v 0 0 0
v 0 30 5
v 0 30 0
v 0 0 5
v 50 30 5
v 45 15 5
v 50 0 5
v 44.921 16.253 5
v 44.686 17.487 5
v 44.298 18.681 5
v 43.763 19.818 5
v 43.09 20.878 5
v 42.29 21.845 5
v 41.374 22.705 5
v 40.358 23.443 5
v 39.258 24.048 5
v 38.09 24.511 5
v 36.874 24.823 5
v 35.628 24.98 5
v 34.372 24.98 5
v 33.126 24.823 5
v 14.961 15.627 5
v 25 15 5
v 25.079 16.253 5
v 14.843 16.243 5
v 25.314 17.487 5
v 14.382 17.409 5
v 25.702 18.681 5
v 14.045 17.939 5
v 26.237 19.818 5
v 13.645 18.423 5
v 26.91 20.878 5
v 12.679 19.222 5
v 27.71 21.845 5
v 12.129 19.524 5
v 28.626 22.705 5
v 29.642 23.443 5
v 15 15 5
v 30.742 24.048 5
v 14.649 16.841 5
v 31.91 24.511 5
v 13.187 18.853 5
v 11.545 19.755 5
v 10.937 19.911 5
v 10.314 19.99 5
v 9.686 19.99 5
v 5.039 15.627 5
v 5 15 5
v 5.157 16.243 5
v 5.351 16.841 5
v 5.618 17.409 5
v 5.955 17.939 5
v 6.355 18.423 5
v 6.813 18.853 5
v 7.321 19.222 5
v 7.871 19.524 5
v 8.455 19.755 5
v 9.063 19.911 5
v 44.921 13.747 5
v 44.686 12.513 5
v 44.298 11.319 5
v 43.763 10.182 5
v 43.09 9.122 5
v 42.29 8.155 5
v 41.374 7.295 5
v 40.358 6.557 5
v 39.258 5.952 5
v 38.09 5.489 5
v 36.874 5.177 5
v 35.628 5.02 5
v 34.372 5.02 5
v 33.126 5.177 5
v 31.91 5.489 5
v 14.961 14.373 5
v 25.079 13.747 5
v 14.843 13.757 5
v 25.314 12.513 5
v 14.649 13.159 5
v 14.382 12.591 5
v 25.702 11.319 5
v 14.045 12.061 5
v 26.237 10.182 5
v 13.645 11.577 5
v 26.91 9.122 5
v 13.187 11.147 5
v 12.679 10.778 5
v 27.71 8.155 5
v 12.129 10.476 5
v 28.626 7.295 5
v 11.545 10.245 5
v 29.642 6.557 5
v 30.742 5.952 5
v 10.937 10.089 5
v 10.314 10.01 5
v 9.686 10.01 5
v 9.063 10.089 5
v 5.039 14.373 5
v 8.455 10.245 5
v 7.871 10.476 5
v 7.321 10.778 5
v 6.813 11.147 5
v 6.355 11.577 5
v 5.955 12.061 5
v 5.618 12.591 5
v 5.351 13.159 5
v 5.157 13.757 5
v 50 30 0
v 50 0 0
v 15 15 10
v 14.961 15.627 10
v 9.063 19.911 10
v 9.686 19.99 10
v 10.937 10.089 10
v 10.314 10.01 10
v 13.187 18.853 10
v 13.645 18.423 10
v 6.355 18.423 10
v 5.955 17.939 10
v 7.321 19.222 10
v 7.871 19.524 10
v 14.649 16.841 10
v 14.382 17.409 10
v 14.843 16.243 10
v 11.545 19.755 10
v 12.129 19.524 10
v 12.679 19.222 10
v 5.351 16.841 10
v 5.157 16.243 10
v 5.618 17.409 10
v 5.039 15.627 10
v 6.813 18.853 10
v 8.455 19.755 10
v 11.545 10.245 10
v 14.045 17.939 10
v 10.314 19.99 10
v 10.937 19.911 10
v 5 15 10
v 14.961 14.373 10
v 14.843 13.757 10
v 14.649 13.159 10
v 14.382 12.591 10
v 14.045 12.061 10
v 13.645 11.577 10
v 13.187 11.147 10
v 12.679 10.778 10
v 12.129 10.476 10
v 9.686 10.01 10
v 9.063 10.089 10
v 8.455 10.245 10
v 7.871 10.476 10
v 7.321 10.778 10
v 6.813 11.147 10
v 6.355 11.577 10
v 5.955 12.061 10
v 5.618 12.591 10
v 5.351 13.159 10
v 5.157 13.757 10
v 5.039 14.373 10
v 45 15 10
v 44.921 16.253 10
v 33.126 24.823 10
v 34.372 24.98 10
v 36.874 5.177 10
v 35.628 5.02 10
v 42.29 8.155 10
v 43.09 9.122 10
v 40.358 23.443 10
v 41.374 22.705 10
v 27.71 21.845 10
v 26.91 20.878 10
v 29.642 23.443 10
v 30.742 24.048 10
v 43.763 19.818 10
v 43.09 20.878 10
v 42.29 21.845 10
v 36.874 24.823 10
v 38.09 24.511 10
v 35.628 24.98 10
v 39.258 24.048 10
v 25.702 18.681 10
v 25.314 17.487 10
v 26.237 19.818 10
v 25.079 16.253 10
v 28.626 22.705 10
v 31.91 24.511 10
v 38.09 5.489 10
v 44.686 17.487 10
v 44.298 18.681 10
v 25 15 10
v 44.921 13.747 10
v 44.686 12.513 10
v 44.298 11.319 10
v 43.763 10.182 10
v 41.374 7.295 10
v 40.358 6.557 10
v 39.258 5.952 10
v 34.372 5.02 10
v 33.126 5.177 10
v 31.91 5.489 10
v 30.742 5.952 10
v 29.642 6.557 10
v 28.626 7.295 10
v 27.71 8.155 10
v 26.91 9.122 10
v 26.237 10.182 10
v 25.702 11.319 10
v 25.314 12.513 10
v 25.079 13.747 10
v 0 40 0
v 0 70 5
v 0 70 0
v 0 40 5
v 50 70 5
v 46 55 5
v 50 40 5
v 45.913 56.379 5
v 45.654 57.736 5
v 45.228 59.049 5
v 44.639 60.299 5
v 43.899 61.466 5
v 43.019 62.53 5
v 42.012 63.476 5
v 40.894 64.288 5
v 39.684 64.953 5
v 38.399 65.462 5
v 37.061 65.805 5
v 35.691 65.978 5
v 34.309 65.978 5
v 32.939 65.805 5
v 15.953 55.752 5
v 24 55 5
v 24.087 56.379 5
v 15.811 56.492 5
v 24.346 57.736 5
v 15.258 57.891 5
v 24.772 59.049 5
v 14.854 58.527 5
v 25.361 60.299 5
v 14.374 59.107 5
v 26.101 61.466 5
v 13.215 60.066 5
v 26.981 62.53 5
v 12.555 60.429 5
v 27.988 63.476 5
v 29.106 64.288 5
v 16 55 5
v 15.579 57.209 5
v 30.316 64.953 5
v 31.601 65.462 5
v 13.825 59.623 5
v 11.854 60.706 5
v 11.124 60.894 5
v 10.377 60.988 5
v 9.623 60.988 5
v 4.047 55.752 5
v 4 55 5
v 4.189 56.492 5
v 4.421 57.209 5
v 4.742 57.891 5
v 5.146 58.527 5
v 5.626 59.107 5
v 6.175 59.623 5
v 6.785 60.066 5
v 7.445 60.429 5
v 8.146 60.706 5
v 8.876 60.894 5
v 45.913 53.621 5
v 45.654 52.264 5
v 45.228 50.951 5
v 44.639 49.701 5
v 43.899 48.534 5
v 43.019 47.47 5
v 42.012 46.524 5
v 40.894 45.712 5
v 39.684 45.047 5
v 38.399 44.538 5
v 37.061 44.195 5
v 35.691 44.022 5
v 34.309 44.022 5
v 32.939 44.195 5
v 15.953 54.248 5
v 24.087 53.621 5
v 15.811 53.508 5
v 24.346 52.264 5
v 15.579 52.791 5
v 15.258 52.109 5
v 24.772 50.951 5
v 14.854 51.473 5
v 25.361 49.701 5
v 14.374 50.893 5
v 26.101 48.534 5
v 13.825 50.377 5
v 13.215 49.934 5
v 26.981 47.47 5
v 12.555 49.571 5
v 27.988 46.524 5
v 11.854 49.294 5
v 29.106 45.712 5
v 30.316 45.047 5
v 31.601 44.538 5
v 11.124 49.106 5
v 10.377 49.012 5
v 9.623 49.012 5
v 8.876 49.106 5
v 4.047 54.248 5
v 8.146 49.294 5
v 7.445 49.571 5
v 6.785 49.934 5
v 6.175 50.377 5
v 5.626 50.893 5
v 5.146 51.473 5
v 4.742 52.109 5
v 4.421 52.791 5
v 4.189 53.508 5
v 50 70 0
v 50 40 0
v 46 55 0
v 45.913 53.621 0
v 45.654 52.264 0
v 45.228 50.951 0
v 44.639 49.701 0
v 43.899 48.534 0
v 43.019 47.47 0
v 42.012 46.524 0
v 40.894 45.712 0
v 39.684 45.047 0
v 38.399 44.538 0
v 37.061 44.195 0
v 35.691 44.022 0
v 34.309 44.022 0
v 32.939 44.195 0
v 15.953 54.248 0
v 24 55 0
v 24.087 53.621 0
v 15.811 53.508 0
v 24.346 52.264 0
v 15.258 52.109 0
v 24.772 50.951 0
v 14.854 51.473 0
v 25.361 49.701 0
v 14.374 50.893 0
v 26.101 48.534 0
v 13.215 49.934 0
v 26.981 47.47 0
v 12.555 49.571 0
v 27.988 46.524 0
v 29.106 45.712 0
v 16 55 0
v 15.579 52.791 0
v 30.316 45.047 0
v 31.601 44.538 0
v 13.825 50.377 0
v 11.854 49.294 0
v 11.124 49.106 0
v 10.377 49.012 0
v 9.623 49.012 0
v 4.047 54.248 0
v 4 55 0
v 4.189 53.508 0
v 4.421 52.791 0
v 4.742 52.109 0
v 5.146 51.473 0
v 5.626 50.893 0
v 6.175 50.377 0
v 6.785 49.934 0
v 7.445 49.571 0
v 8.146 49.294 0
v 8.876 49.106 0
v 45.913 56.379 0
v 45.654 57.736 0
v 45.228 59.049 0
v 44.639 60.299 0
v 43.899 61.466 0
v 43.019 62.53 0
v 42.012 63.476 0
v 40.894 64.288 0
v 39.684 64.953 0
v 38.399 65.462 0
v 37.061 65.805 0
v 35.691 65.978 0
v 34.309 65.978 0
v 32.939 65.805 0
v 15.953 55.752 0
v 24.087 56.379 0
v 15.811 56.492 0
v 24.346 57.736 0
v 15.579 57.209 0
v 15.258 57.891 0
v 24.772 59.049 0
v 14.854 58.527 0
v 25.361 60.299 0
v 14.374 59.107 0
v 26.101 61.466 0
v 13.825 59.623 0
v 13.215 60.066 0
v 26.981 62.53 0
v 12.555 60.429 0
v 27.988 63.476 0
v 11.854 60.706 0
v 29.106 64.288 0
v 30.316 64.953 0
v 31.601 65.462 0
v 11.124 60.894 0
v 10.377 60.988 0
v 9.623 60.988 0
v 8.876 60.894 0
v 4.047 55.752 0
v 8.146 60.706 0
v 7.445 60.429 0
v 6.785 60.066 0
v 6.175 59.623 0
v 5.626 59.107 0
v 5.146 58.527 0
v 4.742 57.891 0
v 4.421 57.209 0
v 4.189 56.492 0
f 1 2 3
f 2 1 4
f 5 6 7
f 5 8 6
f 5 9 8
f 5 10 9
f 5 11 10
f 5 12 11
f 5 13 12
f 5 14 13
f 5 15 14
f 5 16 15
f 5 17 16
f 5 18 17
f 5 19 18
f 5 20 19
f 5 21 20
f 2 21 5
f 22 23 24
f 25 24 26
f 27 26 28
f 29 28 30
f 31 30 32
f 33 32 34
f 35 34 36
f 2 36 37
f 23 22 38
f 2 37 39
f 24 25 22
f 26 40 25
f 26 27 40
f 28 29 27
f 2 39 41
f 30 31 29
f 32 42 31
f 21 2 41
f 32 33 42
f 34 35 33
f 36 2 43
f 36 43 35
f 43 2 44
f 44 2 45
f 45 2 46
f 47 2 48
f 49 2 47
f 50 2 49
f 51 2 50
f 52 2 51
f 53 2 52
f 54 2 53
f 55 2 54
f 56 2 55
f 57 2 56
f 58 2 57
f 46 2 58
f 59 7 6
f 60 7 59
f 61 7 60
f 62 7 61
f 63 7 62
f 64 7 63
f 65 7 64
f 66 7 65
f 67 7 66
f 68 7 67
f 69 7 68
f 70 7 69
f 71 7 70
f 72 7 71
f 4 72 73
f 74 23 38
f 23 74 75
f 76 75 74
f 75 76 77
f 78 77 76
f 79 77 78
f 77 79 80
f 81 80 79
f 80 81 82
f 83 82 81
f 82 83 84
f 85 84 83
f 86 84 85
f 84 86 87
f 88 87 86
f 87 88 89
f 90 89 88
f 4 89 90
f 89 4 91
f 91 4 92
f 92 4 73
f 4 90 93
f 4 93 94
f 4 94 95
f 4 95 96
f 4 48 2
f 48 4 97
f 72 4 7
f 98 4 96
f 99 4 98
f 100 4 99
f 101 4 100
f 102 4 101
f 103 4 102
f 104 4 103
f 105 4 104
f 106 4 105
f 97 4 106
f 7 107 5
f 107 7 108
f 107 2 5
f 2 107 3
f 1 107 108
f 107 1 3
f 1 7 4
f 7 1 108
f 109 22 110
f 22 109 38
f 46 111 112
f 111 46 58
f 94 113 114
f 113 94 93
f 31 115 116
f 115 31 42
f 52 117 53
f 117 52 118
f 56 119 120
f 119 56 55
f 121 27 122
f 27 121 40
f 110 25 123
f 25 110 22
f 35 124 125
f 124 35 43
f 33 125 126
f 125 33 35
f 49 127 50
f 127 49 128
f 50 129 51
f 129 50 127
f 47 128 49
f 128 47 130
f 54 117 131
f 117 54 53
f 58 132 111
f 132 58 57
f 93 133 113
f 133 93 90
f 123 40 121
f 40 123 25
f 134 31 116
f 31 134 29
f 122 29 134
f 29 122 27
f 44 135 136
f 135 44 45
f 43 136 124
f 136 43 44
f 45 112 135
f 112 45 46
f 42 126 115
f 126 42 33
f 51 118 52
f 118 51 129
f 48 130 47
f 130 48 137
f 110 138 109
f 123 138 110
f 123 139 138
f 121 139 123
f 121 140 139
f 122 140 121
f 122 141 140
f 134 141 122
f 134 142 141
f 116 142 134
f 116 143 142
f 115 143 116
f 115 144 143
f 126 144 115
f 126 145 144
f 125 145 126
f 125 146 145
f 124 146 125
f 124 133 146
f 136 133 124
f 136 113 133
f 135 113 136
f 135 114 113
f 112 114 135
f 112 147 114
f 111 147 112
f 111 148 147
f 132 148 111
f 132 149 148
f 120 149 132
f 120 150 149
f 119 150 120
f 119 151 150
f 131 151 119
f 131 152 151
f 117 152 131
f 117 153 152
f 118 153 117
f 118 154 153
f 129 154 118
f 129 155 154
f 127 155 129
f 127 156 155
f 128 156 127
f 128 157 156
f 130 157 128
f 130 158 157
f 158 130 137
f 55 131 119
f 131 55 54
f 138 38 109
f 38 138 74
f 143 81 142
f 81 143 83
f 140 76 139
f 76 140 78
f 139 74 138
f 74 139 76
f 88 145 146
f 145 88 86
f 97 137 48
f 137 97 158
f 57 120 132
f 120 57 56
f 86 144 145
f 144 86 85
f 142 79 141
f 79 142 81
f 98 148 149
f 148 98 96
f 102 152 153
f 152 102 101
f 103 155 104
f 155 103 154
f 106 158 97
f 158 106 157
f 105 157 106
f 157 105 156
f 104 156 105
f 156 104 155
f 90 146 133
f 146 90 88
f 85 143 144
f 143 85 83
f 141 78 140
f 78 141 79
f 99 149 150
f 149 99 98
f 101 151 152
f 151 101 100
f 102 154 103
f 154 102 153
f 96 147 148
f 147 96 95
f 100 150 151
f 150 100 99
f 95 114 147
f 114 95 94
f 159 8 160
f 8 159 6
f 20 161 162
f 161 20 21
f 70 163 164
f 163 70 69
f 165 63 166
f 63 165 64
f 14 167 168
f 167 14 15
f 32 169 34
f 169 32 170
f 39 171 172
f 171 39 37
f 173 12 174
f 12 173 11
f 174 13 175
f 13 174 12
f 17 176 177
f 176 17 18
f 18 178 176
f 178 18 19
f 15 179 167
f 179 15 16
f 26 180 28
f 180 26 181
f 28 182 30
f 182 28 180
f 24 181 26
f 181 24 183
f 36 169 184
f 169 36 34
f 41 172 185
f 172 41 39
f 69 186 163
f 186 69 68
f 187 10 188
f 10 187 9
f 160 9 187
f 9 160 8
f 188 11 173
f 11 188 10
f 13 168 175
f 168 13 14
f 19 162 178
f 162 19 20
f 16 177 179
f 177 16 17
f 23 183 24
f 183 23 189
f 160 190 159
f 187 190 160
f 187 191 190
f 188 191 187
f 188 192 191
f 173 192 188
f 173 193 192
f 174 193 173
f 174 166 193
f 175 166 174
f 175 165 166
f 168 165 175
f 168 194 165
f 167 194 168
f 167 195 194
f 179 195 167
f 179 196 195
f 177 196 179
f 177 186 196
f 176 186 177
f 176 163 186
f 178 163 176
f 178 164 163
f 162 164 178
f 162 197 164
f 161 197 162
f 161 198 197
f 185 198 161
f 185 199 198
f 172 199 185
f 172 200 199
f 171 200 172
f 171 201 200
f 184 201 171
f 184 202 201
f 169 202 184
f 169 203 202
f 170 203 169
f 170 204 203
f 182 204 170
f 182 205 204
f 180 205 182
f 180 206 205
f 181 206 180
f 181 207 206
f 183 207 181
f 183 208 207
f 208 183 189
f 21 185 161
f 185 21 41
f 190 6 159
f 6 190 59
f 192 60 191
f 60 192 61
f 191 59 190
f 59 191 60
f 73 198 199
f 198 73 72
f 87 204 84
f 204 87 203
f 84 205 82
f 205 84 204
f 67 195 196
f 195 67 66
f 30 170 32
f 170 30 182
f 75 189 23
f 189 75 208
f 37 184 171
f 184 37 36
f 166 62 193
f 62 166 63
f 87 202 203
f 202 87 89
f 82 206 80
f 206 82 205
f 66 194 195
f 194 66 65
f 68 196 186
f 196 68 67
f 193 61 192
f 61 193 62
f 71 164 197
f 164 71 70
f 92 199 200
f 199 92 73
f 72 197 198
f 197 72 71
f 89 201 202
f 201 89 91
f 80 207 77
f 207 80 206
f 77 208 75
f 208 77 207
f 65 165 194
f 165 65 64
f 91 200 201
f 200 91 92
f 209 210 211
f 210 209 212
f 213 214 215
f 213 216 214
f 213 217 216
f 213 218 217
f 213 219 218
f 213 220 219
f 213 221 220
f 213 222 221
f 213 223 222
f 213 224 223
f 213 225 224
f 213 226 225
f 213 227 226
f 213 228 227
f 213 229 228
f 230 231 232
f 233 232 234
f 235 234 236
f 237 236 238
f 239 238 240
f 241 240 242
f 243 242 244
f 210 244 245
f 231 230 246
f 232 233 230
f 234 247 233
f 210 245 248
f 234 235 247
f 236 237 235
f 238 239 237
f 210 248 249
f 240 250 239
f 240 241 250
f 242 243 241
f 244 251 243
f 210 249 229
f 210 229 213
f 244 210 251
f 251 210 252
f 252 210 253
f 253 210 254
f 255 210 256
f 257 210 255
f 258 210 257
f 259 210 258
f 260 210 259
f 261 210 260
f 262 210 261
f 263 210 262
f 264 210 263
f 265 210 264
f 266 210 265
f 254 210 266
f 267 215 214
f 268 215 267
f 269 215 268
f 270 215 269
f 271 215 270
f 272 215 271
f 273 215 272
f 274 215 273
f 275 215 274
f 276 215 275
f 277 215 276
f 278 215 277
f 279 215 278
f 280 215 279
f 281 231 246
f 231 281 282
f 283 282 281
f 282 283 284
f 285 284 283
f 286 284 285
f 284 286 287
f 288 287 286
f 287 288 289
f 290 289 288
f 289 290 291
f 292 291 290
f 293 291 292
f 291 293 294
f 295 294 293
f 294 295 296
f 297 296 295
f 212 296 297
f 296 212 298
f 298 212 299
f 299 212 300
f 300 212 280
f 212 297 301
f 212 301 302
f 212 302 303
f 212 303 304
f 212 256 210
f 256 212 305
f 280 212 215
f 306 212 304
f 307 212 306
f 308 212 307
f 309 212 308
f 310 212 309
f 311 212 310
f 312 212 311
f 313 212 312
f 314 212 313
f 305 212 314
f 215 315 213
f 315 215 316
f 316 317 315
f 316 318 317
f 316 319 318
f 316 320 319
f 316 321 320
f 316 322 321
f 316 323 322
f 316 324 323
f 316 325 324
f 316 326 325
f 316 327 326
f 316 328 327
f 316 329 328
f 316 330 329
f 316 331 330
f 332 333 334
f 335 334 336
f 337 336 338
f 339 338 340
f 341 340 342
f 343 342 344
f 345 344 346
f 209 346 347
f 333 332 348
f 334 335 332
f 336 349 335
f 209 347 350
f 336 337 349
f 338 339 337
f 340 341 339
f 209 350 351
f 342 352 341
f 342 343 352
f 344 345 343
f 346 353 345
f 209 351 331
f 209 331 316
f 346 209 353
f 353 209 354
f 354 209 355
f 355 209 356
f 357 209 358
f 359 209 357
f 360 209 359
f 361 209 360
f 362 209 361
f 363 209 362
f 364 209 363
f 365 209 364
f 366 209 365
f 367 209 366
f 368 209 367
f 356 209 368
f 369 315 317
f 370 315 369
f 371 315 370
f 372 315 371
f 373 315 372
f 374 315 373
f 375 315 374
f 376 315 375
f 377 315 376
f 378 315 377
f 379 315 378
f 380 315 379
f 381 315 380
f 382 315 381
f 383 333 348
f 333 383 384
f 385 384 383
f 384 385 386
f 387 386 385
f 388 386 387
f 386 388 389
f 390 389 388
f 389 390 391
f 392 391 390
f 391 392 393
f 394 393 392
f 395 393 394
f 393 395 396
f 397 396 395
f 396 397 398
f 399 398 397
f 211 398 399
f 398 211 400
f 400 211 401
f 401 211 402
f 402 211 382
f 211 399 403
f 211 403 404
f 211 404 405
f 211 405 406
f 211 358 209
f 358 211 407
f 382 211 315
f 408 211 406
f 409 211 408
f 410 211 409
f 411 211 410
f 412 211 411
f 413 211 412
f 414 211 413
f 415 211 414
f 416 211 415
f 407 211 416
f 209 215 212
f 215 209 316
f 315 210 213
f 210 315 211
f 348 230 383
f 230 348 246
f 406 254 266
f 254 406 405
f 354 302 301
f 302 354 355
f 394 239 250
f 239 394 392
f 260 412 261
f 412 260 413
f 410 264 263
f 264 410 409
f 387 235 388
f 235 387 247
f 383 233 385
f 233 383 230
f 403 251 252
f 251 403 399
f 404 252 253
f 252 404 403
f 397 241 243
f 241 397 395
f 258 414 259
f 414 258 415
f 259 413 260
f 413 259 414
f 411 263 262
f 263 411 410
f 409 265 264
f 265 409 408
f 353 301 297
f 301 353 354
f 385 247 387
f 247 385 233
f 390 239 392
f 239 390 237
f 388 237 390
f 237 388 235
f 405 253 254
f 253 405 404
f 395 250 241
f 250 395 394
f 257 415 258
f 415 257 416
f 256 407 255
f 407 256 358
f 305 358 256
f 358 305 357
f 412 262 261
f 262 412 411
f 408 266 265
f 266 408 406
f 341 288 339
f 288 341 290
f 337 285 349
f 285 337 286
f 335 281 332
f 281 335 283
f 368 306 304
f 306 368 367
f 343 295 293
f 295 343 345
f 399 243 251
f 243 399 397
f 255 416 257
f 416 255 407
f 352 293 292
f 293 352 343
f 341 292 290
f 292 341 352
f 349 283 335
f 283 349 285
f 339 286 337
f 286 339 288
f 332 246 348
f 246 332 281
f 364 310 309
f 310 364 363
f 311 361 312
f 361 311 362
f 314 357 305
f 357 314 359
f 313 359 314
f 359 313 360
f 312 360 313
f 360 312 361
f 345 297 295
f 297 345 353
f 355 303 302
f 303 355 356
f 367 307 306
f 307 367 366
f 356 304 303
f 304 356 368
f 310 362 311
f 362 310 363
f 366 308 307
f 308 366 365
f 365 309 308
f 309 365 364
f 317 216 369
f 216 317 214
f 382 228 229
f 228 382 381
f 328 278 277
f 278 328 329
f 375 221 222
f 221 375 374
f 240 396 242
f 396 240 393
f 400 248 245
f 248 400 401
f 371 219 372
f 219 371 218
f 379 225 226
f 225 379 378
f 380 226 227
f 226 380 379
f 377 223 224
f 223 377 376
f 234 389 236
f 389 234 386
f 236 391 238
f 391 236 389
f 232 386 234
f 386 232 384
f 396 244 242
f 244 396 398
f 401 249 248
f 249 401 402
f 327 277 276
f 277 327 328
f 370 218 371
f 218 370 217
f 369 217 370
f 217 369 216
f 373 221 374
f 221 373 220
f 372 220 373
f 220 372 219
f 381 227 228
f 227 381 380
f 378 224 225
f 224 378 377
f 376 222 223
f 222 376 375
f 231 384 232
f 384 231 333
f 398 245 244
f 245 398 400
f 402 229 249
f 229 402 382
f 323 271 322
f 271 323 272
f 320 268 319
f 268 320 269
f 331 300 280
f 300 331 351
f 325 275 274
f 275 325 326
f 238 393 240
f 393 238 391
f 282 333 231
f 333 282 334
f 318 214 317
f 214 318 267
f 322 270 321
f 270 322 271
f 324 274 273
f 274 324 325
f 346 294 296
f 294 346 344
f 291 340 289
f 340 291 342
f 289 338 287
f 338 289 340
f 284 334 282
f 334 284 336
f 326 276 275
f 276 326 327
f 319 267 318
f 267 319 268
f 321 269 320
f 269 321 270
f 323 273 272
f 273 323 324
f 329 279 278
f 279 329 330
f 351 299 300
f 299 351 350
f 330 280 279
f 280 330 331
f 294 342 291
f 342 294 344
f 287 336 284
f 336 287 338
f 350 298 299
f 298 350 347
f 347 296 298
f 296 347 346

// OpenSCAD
$fn=50;

union() {
  cube([50, 30, 5]);
  translate([10, 15, 0]) {
    cylinder(h=10, r1=5, r2=5);
  }
  translate([35, 15, 0]) {
    cylinder(h=10, r1=10, r2=10);
  }
}

translate([0, 40, 0]) {
  difference() {
    cube([50, 30, 5]);
    translate([10, 15, -1]) {
      cylinder(h=10, r1=6, r2=6);
    }
    translate([35, 15, -1]) {
      cylinder(h=10, r1=11, r2=11);
    }
  }
}
